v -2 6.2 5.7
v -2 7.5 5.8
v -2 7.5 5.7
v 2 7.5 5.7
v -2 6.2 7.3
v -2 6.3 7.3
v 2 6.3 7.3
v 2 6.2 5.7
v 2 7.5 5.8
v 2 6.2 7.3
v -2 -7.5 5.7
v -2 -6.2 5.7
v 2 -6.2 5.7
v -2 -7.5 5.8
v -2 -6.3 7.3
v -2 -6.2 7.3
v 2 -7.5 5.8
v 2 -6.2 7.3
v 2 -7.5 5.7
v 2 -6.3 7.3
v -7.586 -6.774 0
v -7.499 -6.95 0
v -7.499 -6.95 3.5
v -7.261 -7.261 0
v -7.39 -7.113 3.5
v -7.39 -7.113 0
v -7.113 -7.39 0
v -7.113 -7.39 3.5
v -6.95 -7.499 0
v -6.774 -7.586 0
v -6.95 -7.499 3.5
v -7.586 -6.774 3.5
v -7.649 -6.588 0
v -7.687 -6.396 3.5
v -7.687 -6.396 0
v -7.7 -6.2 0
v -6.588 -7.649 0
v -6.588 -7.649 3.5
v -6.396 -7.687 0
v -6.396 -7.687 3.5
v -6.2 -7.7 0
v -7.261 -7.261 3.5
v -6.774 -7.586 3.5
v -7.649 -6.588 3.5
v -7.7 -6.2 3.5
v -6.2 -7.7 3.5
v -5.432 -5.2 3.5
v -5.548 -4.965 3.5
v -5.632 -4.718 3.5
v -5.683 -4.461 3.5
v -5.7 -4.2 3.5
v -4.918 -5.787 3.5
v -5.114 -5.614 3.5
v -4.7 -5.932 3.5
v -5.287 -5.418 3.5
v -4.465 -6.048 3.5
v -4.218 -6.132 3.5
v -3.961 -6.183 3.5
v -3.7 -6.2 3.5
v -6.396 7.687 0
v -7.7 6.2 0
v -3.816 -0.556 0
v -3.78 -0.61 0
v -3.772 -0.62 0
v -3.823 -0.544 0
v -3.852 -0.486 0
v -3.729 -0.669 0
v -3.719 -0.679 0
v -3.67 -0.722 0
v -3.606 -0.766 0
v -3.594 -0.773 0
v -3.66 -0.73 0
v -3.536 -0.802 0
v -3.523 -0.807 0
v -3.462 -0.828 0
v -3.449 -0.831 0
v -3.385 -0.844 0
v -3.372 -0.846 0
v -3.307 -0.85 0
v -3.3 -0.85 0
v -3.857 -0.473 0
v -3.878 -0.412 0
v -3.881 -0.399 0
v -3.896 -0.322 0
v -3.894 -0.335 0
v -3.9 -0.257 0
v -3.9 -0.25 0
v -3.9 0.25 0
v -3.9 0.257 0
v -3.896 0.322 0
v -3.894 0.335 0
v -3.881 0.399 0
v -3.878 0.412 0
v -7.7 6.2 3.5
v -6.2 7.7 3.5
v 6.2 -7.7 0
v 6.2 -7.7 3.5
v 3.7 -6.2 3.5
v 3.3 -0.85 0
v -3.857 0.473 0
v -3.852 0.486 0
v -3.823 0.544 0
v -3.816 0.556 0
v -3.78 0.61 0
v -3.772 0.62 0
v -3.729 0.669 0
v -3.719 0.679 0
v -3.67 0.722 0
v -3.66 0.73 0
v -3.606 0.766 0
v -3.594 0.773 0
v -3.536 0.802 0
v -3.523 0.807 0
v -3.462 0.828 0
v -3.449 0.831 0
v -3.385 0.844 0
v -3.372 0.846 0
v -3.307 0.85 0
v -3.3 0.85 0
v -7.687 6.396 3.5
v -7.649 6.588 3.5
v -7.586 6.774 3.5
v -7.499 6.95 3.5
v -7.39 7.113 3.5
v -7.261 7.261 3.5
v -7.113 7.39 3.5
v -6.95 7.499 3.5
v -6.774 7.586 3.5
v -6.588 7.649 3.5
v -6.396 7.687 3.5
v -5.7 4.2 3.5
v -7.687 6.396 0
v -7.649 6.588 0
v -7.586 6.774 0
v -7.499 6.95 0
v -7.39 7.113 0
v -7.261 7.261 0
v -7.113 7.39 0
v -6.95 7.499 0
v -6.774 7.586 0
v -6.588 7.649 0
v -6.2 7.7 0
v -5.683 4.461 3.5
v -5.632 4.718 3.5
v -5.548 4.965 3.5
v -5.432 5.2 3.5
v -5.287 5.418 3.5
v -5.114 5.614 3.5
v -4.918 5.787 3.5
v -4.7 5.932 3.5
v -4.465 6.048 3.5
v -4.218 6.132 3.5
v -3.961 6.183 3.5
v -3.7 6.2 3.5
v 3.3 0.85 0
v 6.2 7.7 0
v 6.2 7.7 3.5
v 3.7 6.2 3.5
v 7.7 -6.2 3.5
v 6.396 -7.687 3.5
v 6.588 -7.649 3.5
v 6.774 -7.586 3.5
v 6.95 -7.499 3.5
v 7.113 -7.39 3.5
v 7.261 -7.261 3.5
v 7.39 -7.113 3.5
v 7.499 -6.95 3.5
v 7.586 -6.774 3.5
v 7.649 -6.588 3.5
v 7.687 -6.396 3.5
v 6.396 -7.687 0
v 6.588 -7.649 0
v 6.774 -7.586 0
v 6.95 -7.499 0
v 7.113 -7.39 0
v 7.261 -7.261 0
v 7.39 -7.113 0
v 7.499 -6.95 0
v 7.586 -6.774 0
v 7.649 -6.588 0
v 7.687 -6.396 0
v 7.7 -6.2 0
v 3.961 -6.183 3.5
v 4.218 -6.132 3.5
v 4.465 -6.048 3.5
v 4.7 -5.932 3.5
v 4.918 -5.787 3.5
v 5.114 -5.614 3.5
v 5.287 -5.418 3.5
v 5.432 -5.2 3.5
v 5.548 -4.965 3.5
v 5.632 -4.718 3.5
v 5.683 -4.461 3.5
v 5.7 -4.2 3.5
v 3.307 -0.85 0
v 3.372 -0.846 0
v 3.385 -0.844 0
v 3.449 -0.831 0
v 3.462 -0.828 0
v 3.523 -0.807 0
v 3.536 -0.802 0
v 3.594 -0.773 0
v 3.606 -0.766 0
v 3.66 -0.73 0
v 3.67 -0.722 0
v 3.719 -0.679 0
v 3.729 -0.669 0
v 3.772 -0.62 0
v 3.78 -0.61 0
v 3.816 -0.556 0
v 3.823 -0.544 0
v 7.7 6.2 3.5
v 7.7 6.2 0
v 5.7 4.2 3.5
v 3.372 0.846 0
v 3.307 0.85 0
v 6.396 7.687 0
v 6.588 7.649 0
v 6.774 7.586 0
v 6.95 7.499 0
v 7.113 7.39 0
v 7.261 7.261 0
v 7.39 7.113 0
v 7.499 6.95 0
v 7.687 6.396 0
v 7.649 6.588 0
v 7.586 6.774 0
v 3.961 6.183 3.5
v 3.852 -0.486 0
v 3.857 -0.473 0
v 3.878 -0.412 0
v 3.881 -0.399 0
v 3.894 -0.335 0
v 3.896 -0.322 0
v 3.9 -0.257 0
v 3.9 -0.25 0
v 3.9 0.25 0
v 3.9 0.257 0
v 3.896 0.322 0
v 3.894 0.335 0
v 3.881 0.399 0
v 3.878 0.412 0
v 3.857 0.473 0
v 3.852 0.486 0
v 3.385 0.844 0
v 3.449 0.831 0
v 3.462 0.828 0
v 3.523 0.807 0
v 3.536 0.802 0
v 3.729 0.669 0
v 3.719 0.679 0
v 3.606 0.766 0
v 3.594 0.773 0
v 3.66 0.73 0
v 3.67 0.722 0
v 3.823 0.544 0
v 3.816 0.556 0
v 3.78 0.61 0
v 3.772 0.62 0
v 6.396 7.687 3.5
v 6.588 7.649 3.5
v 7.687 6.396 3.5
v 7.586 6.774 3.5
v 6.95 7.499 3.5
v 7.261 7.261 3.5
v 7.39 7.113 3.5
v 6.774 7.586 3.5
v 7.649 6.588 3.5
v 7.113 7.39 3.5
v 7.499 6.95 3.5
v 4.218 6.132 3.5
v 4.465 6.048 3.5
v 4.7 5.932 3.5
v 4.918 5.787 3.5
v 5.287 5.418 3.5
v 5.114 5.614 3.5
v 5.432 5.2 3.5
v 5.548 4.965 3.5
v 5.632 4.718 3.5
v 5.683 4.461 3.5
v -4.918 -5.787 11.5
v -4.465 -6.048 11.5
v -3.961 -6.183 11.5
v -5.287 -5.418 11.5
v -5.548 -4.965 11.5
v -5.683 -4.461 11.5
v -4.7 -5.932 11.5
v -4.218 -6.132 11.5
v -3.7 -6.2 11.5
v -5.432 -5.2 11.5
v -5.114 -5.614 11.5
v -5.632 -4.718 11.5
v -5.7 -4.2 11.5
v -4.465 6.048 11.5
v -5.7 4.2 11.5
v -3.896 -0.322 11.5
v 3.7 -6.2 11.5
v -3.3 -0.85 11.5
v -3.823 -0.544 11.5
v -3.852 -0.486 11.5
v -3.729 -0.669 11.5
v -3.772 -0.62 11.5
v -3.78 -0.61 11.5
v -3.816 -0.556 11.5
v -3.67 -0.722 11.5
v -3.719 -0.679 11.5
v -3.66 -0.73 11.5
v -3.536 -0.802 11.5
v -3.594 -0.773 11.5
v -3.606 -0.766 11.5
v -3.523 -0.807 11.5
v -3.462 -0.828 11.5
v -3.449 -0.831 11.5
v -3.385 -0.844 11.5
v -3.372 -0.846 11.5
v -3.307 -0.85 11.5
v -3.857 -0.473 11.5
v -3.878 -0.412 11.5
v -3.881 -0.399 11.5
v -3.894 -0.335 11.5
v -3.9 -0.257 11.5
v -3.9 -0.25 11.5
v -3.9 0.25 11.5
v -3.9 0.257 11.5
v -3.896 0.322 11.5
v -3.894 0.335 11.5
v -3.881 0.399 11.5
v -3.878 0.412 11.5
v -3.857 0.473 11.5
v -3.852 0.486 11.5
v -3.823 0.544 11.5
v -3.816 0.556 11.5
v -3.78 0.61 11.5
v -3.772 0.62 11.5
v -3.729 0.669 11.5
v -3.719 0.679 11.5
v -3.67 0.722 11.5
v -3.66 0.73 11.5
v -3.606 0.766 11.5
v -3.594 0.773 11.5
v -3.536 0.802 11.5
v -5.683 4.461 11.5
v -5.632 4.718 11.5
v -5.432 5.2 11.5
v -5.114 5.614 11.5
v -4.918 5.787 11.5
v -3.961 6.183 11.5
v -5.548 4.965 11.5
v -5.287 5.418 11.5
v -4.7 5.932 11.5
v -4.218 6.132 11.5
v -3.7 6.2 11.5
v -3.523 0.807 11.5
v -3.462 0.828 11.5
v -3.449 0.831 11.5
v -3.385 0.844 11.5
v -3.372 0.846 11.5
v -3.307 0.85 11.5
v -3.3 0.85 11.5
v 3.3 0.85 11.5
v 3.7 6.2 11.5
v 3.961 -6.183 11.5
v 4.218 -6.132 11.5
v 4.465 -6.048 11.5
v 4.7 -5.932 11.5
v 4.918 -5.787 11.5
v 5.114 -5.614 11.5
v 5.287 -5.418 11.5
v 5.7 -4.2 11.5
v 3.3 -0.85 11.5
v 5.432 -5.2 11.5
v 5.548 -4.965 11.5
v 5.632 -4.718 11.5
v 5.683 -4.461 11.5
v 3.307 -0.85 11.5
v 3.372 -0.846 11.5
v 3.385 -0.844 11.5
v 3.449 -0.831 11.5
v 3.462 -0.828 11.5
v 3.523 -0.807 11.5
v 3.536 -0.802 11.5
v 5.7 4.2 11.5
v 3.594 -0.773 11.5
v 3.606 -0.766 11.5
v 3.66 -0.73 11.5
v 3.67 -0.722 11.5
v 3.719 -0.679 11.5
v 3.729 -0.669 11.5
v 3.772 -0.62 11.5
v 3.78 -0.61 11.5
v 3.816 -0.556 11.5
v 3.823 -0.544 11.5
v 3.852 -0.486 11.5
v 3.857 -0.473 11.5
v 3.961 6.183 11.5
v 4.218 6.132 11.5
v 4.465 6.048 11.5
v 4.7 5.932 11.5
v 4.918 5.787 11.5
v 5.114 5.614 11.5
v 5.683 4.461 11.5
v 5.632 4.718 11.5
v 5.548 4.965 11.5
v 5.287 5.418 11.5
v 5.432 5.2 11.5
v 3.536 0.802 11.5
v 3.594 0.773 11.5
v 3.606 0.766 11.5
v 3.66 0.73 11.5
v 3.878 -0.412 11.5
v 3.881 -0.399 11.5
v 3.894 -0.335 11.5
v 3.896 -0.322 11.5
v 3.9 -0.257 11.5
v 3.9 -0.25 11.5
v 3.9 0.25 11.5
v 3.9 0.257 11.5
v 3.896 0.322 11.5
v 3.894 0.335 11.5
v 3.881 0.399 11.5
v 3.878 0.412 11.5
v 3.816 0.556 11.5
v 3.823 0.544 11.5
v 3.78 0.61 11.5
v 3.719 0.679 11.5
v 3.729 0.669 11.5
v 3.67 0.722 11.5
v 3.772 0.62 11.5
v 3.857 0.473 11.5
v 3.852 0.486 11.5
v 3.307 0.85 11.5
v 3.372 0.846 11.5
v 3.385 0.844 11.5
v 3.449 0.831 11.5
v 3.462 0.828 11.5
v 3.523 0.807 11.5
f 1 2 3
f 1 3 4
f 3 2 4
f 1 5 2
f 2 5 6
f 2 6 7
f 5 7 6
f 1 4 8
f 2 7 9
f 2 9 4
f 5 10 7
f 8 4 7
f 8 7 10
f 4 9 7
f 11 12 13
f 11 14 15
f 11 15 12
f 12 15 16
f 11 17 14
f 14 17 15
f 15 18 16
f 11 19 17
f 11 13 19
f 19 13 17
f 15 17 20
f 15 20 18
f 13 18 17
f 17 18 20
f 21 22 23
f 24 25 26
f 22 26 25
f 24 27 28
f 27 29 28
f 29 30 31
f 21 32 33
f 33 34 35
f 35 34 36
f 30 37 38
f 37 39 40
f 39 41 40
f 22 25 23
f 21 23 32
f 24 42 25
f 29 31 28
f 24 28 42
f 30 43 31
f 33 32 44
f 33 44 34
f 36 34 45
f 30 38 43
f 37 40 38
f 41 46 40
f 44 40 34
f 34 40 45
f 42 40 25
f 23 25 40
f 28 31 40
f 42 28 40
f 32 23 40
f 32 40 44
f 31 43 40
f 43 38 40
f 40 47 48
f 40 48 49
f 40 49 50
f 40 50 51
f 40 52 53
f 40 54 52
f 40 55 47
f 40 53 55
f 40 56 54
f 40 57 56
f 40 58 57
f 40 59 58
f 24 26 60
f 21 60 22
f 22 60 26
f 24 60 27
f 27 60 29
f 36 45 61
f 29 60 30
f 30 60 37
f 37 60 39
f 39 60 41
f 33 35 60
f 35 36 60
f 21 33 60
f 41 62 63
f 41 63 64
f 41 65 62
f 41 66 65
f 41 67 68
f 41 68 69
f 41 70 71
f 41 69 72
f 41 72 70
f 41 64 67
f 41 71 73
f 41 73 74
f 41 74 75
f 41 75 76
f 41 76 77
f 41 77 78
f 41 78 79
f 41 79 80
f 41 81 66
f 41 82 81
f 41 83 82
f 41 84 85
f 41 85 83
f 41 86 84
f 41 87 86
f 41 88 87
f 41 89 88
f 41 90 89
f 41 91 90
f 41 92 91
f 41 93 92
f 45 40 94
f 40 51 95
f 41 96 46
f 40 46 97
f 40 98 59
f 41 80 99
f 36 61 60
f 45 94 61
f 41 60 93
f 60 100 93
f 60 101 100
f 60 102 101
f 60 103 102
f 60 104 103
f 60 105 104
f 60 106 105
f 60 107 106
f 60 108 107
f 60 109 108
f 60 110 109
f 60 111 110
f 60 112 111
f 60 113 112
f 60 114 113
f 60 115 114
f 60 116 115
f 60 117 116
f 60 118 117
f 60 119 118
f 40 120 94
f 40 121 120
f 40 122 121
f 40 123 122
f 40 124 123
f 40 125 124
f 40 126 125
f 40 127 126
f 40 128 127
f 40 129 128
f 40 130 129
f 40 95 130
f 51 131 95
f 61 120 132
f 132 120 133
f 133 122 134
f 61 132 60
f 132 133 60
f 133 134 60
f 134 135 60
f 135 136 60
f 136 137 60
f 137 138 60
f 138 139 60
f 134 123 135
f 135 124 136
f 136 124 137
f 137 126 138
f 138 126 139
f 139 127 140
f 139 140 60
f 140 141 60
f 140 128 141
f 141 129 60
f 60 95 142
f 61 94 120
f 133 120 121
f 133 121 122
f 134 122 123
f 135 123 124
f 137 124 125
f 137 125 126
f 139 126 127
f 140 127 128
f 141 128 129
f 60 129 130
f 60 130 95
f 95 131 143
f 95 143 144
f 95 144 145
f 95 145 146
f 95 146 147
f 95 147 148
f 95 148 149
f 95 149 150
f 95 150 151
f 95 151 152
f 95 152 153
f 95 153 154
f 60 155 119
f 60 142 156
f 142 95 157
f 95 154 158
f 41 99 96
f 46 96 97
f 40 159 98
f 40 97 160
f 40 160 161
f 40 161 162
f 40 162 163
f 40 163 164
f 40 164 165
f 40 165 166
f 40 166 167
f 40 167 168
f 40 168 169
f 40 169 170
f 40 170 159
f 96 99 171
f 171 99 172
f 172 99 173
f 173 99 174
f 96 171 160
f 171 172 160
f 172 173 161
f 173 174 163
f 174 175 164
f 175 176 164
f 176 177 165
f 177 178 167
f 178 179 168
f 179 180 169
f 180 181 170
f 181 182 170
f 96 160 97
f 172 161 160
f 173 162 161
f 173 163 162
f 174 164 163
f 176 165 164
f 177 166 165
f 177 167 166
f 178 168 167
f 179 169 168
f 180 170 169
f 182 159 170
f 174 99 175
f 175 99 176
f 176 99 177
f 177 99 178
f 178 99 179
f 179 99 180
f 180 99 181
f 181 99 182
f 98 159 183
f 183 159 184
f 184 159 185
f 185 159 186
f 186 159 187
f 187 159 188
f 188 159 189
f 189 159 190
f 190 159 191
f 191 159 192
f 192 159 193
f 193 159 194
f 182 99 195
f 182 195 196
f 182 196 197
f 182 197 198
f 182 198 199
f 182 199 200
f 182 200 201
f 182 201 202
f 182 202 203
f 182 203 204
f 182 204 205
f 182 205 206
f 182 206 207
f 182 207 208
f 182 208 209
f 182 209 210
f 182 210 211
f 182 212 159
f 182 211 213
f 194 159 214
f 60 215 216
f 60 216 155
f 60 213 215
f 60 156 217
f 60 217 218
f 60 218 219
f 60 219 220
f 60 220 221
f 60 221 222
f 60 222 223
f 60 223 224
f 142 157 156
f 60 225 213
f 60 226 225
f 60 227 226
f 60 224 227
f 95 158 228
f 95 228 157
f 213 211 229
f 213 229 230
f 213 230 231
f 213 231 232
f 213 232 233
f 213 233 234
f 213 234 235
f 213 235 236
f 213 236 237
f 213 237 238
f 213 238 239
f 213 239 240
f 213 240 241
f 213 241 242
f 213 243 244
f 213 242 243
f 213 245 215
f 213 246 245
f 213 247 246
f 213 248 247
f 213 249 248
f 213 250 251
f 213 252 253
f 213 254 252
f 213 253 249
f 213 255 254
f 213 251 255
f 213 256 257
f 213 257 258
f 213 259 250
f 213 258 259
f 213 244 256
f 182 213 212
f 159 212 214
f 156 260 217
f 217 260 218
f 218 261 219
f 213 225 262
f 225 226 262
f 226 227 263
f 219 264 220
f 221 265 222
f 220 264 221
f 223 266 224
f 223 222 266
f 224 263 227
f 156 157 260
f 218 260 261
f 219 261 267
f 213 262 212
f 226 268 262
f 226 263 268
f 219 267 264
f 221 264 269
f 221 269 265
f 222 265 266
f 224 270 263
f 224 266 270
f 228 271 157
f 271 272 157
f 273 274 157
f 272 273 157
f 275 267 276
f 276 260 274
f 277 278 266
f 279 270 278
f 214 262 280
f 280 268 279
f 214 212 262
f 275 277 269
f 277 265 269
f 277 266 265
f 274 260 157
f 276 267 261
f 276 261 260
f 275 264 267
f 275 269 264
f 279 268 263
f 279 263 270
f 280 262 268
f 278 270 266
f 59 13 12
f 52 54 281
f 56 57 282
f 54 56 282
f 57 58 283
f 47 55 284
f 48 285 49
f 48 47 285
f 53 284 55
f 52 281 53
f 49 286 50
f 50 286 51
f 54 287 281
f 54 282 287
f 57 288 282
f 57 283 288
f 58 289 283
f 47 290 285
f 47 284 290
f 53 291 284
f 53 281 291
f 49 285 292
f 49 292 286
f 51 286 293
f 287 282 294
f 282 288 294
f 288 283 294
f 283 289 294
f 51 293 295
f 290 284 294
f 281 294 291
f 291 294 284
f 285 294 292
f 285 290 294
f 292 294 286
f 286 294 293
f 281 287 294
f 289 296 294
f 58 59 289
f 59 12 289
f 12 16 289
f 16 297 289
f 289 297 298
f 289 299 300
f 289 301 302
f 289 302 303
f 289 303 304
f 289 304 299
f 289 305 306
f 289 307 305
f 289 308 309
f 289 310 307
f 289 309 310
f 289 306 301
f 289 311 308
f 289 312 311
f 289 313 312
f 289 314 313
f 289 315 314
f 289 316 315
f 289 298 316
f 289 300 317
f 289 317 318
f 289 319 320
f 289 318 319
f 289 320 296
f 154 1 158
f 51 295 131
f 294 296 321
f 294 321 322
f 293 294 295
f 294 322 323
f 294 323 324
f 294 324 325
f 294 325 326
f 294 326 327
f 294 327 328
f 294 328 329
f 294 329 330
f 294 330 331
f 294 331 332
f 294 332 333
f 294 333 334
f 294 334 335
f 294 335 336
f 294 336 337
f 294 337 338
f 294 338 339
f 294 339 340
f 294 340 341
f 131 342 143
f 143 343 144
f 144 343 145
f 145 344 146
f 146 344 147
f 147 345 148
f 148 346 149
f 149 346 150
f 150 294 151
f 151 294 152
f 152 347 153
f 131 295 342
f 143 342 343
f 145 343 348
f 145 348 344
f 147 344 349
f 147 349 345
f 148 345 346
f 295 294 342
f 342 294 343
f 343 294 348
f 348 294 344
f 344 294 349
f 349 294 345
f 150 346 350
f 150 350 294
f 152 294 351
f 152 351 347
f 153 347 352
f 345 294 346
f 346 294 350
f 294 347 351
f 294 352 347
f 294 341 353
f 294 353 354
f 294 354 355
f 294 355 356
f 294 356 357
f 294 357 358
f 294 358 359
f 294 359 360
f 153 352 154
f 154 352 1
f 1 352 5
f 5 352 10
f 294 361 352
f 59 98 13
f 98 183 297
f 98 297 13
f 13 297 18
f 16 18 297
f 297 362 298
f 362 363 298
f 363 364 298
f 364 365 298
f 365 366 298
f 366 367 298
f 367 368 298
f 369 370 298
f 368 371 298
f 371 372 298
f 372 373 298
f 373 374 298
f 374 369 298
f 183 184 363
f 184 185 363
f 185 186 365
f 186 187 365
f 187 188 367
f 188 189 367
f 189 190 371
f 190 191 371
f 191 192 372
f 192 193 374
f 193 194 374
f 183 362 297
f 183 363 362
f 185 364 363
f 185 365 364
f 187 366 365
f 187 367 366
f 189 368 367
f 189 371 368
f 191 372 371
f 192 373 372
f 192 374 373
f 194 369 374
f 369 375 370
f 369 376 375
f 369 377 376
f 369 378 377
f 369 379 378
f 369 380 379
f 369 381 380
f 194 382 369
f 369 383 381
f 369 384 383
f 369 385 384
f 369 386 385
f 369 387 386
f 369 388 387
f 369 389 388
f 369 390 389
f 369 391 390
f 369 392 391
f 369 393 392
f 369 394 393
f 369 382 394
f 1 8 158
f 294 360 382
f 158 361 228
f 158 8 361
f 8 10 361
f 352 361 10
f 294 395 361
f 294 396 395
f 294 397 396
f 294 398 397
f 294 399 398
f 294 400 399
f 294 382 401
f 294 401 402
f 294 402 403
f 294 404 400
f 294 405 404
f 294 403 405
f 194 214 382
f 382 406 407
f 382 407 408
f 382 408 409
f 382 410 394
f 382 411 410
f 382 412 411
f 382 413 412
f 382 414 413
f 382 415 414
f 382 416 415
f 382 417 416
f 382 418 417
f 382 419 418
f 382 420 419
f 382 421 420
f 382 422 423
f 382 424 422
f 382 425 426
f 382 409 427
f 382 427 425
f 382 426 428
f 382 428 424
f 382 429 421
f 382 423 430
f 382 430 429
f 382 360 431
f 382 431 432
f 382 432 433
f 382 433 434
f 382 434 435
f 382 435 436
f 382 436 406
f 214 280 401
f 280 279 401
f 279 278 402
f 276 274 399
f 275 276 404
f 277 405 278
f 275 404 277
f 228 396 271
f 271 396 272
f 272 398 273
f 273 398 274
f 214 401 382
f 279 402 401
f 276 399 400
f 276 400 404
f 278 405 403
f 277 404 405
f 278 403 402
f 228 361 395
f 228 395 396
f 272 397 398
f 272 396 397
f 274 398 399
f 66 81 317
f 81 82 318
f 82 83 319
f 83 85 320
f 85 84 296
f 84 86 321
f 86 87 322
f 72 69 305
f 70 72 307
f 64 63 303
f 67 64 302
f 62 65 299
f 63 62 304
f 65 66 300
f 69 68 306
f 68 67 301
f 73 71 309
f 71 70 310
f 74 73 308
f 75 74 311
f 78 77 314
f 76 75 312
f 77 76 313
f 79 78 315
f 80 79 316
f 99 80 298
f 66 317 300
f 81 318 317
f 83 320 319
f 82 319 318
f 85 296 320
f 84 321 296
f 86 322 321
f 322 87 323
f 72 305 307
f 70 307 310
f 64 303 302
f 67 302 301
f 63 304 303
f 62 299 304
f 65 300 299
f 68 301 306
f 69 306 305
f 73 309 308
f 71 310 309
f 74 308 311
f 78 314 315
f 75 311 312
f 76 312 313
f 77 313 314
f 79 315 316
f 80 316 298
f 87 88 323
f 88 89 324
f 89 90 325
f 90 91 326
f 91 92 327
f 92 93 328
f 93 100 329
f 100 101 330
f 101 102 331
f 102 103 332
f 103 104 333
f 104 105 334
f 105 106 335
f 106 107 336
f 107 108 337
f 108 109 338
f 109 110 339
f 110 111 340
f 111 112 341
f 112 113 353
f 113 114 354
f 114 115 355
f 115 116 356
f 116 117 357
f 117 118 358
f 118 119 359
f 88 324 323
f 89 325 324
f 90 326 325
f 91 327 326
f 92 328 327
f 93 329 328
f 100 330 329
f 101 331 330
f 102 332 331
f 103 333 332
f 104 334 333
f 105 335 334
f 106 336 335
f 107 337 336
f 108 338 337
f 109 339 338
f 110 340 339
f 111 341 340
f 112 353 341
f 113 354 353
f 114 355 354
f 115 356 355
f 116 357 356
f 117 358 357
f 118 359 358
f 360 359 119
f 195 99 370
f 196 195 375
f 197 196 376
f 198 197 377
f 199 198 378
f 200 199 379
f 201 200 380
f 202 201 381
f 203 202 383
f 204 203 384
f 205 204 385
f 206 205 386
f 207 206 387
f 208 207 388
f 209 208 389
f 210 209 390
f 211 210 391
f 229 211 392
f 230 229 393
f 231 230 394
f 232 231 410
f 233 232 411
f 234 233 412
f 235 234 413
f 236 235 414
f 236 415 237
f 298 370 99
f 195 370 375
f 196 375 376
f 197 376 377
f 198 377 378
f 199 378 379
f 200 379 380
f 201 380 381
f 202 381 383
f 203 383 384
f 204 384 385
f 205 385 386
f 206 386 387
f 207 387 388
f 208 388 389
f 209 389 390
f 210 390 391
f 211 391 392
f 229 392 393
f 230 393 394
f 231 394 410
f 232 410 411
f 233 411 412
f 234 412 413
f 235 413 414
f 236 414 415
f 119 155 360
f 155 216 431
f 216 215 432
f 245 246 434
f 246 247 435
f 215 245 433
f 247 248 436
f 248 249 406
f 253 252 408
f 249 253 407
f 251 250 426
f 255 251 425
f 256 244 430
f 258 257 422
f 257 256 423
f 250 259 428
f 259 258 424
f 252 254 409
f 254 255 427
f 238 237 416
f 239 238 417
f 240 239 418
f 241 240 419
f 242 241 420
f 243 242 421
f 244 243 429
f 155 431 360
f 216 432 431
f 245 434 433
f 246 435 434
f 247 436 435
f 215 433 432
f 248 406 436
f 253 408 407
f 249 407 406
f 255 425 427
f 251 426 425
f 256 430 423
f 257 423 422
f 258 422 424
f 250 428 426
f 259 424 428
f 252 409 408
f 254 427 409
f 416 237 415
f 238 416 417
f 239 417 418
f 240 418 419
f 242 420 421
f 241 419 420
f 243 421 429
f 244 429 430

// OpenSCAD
// file: parameters.scad
// ============================================
// MODULAR CABLE ORGANIZER - SHARED PARAMETERS
// ============================================
// All dimensions in mm - include this in all files
// ============================================

$fn = 48;

// === TOLERANCES ===
clearance = 0.3;
port_clearance = 0.1;  // Extra clearance for port openings (reduced - 0.2 was too loose for USB-C)
wall = 1.6;

// === SLOT DIMENSIONS (2:1 aspect ratio) - scaled to 2/3 ===
slot_width = 32;  // Standard wide slot for larger connectors
slot_width_narrow = 16;  // Narrow slot for compact connectors (USB-C, micro-USB, USB-A, Lightning, 3.5mm)
slot_height = 16;  // Height is same for both wide and narrow
slot_depth = 4;  // Reduced from 6mm - less frame depth needed

// === FRAME STRUCTURE ===
frame_wall = 2.0;   // Wall between slots - 6 layers @ 0.4mm nozzle for strength
frame_border = 6;  // Increased by 10mm for mounting holes with countersink
frame_back = 2;     // Slightly thicker for snap catch strength
mount_hole_dia = 3;
countersink_dia = 6;  // Diameter of countersink for screw heads
countersink_depth = 2;  // Depth of countersink

// === DEFAULT GRID (can be overridden in individual files) ===
grid_cols = 2;
grid_rows = 2;

// === INSERT BASE DIMENSIONS ===
insert_width = slot_width - (2 * clearance);
insert_height = slot_height - (2 * clearance);
insert_base_depth = slot_depth - 0.5;

// === NARROW INSERT BASE DIMENSIONS ===
insert_width_narrow = slot_width_narrow - (2 * clearance);
insert_height_narrow = slot_height - (2 * clearance);

// === INSERT BODY (protrudes from frame) ===
insert_body_width = insert_width - 4;
insert_body_height = insert_height - 3;
insert_body_depth = 12;  // Deep enough to accommodate male cable connectors
insert_top_thick = 1.5;  // Top platform thickness

// === NARROW INSERT BODY (protrudes from frame) ===
insert_body_width_narrow = insert_width_narrow - 4;
insert_body_height_narrow = insert_height_narrow - 3;

// === SNAP TABS (on neck/body - catch on back plate) ===
snap_tab_width = 4;
snap_tab_protrude = 1.2;  // How far tab sticks out from body
snap_tab_thick = 1.5;     // Z thickness of tab
snap_tab_offset = 2.2;      // Distance from base to tab bottom on insert (increased to clear frame)

// === CONNECTOR PORT DIMENSIONS & BODY DEPTHS ===
// Port dimensions from reference blueprints
// Body depths sized to match typical male connector lengths

// USB-C: 8.4 x 2.6mm, male connector ~9mm
usbc_w = 8.4;
usbc_h = 2.6;
usbc_r = 1.0;
usbc_body_depth = 9;

// USB-A: 12.0 x 4.5mm (tighter fit based on test print)
usba_w = 12.0;
usba_h = 4.5;
usba_r = 0.5;
usba_body_depth = 13;

// USB Mini: 6.9 x 3.0mm, male connector ~9mm
usb_mini_w = 6.9;
usb_mini_h = 3.0;
usb_mini_r = 0.5;
usb_mini_body_depth = 9;

// USB Micro-B: 7.0 x 1.8mm (tighter fit based on test print)
usb_micro_w = 7.0;
usb_micro_h = 1.8;
usb_micro_r = 0.3;
usb_micro_body_depth = 7;

// USB-B: 8.4 x 7.6mm (printer/keyboard style connector)
usb_b_w = 8.4;
usb_b_h = 7.6;
usb_b_r = 0.8;
usb_b_body_depth = 14;

// Lightning: 7.6 x 1.5mm, male connector ~8mm (measured from actual connector)
lightning_w = 7.6;
lightning_h = 1.5;
lightning_r = 0.5;
lightning_body_depth = 8;

// HDMI: 13.9 x 4.45mm (adjusted taper for better fit)
hdmi_w = 13.9;
hdmi_h = 4.45;
hdmi_r = 0.5;
hdmi_body_depth = 16;

// 3.5mm Audio Jack: male plug ~14mm (3.5mm = ~3.5mm, but use 3.6mm for snug fit)
audio_jack_dia = 3.6;
audio_jack_body_depth = 14;

// Blank/Label: recessed area for label
label_w = 30;
label_h = 12;
label_depth = 0.8;

// === CALCULATED VALUES ===
frame_total_depth = frame_back + slot_depth;
grid_width = (grid_cols * slot_width) + ((grid_cols - 1) * frame_wall);
grid_height = (grid_rows * slot_height) + ((grid_rows - 1) * frame_wall);
frame_width = grid_width + (2 * frame_border);
frame_height_total = grid_height + (2 * frame_border);
insert_total_depth = insert_base_depth + insert_body_depth;
// main file
// ============================================
// PRINT FILE: Lightning Insert (NARROW)
// ============================================
// Narrow width version for space-efficient frames
// Print with base down (no supports needed)
// ============================================

include <insert_base.scad>

// Render narrow Lightning insert
insert_lightning_narrow();
